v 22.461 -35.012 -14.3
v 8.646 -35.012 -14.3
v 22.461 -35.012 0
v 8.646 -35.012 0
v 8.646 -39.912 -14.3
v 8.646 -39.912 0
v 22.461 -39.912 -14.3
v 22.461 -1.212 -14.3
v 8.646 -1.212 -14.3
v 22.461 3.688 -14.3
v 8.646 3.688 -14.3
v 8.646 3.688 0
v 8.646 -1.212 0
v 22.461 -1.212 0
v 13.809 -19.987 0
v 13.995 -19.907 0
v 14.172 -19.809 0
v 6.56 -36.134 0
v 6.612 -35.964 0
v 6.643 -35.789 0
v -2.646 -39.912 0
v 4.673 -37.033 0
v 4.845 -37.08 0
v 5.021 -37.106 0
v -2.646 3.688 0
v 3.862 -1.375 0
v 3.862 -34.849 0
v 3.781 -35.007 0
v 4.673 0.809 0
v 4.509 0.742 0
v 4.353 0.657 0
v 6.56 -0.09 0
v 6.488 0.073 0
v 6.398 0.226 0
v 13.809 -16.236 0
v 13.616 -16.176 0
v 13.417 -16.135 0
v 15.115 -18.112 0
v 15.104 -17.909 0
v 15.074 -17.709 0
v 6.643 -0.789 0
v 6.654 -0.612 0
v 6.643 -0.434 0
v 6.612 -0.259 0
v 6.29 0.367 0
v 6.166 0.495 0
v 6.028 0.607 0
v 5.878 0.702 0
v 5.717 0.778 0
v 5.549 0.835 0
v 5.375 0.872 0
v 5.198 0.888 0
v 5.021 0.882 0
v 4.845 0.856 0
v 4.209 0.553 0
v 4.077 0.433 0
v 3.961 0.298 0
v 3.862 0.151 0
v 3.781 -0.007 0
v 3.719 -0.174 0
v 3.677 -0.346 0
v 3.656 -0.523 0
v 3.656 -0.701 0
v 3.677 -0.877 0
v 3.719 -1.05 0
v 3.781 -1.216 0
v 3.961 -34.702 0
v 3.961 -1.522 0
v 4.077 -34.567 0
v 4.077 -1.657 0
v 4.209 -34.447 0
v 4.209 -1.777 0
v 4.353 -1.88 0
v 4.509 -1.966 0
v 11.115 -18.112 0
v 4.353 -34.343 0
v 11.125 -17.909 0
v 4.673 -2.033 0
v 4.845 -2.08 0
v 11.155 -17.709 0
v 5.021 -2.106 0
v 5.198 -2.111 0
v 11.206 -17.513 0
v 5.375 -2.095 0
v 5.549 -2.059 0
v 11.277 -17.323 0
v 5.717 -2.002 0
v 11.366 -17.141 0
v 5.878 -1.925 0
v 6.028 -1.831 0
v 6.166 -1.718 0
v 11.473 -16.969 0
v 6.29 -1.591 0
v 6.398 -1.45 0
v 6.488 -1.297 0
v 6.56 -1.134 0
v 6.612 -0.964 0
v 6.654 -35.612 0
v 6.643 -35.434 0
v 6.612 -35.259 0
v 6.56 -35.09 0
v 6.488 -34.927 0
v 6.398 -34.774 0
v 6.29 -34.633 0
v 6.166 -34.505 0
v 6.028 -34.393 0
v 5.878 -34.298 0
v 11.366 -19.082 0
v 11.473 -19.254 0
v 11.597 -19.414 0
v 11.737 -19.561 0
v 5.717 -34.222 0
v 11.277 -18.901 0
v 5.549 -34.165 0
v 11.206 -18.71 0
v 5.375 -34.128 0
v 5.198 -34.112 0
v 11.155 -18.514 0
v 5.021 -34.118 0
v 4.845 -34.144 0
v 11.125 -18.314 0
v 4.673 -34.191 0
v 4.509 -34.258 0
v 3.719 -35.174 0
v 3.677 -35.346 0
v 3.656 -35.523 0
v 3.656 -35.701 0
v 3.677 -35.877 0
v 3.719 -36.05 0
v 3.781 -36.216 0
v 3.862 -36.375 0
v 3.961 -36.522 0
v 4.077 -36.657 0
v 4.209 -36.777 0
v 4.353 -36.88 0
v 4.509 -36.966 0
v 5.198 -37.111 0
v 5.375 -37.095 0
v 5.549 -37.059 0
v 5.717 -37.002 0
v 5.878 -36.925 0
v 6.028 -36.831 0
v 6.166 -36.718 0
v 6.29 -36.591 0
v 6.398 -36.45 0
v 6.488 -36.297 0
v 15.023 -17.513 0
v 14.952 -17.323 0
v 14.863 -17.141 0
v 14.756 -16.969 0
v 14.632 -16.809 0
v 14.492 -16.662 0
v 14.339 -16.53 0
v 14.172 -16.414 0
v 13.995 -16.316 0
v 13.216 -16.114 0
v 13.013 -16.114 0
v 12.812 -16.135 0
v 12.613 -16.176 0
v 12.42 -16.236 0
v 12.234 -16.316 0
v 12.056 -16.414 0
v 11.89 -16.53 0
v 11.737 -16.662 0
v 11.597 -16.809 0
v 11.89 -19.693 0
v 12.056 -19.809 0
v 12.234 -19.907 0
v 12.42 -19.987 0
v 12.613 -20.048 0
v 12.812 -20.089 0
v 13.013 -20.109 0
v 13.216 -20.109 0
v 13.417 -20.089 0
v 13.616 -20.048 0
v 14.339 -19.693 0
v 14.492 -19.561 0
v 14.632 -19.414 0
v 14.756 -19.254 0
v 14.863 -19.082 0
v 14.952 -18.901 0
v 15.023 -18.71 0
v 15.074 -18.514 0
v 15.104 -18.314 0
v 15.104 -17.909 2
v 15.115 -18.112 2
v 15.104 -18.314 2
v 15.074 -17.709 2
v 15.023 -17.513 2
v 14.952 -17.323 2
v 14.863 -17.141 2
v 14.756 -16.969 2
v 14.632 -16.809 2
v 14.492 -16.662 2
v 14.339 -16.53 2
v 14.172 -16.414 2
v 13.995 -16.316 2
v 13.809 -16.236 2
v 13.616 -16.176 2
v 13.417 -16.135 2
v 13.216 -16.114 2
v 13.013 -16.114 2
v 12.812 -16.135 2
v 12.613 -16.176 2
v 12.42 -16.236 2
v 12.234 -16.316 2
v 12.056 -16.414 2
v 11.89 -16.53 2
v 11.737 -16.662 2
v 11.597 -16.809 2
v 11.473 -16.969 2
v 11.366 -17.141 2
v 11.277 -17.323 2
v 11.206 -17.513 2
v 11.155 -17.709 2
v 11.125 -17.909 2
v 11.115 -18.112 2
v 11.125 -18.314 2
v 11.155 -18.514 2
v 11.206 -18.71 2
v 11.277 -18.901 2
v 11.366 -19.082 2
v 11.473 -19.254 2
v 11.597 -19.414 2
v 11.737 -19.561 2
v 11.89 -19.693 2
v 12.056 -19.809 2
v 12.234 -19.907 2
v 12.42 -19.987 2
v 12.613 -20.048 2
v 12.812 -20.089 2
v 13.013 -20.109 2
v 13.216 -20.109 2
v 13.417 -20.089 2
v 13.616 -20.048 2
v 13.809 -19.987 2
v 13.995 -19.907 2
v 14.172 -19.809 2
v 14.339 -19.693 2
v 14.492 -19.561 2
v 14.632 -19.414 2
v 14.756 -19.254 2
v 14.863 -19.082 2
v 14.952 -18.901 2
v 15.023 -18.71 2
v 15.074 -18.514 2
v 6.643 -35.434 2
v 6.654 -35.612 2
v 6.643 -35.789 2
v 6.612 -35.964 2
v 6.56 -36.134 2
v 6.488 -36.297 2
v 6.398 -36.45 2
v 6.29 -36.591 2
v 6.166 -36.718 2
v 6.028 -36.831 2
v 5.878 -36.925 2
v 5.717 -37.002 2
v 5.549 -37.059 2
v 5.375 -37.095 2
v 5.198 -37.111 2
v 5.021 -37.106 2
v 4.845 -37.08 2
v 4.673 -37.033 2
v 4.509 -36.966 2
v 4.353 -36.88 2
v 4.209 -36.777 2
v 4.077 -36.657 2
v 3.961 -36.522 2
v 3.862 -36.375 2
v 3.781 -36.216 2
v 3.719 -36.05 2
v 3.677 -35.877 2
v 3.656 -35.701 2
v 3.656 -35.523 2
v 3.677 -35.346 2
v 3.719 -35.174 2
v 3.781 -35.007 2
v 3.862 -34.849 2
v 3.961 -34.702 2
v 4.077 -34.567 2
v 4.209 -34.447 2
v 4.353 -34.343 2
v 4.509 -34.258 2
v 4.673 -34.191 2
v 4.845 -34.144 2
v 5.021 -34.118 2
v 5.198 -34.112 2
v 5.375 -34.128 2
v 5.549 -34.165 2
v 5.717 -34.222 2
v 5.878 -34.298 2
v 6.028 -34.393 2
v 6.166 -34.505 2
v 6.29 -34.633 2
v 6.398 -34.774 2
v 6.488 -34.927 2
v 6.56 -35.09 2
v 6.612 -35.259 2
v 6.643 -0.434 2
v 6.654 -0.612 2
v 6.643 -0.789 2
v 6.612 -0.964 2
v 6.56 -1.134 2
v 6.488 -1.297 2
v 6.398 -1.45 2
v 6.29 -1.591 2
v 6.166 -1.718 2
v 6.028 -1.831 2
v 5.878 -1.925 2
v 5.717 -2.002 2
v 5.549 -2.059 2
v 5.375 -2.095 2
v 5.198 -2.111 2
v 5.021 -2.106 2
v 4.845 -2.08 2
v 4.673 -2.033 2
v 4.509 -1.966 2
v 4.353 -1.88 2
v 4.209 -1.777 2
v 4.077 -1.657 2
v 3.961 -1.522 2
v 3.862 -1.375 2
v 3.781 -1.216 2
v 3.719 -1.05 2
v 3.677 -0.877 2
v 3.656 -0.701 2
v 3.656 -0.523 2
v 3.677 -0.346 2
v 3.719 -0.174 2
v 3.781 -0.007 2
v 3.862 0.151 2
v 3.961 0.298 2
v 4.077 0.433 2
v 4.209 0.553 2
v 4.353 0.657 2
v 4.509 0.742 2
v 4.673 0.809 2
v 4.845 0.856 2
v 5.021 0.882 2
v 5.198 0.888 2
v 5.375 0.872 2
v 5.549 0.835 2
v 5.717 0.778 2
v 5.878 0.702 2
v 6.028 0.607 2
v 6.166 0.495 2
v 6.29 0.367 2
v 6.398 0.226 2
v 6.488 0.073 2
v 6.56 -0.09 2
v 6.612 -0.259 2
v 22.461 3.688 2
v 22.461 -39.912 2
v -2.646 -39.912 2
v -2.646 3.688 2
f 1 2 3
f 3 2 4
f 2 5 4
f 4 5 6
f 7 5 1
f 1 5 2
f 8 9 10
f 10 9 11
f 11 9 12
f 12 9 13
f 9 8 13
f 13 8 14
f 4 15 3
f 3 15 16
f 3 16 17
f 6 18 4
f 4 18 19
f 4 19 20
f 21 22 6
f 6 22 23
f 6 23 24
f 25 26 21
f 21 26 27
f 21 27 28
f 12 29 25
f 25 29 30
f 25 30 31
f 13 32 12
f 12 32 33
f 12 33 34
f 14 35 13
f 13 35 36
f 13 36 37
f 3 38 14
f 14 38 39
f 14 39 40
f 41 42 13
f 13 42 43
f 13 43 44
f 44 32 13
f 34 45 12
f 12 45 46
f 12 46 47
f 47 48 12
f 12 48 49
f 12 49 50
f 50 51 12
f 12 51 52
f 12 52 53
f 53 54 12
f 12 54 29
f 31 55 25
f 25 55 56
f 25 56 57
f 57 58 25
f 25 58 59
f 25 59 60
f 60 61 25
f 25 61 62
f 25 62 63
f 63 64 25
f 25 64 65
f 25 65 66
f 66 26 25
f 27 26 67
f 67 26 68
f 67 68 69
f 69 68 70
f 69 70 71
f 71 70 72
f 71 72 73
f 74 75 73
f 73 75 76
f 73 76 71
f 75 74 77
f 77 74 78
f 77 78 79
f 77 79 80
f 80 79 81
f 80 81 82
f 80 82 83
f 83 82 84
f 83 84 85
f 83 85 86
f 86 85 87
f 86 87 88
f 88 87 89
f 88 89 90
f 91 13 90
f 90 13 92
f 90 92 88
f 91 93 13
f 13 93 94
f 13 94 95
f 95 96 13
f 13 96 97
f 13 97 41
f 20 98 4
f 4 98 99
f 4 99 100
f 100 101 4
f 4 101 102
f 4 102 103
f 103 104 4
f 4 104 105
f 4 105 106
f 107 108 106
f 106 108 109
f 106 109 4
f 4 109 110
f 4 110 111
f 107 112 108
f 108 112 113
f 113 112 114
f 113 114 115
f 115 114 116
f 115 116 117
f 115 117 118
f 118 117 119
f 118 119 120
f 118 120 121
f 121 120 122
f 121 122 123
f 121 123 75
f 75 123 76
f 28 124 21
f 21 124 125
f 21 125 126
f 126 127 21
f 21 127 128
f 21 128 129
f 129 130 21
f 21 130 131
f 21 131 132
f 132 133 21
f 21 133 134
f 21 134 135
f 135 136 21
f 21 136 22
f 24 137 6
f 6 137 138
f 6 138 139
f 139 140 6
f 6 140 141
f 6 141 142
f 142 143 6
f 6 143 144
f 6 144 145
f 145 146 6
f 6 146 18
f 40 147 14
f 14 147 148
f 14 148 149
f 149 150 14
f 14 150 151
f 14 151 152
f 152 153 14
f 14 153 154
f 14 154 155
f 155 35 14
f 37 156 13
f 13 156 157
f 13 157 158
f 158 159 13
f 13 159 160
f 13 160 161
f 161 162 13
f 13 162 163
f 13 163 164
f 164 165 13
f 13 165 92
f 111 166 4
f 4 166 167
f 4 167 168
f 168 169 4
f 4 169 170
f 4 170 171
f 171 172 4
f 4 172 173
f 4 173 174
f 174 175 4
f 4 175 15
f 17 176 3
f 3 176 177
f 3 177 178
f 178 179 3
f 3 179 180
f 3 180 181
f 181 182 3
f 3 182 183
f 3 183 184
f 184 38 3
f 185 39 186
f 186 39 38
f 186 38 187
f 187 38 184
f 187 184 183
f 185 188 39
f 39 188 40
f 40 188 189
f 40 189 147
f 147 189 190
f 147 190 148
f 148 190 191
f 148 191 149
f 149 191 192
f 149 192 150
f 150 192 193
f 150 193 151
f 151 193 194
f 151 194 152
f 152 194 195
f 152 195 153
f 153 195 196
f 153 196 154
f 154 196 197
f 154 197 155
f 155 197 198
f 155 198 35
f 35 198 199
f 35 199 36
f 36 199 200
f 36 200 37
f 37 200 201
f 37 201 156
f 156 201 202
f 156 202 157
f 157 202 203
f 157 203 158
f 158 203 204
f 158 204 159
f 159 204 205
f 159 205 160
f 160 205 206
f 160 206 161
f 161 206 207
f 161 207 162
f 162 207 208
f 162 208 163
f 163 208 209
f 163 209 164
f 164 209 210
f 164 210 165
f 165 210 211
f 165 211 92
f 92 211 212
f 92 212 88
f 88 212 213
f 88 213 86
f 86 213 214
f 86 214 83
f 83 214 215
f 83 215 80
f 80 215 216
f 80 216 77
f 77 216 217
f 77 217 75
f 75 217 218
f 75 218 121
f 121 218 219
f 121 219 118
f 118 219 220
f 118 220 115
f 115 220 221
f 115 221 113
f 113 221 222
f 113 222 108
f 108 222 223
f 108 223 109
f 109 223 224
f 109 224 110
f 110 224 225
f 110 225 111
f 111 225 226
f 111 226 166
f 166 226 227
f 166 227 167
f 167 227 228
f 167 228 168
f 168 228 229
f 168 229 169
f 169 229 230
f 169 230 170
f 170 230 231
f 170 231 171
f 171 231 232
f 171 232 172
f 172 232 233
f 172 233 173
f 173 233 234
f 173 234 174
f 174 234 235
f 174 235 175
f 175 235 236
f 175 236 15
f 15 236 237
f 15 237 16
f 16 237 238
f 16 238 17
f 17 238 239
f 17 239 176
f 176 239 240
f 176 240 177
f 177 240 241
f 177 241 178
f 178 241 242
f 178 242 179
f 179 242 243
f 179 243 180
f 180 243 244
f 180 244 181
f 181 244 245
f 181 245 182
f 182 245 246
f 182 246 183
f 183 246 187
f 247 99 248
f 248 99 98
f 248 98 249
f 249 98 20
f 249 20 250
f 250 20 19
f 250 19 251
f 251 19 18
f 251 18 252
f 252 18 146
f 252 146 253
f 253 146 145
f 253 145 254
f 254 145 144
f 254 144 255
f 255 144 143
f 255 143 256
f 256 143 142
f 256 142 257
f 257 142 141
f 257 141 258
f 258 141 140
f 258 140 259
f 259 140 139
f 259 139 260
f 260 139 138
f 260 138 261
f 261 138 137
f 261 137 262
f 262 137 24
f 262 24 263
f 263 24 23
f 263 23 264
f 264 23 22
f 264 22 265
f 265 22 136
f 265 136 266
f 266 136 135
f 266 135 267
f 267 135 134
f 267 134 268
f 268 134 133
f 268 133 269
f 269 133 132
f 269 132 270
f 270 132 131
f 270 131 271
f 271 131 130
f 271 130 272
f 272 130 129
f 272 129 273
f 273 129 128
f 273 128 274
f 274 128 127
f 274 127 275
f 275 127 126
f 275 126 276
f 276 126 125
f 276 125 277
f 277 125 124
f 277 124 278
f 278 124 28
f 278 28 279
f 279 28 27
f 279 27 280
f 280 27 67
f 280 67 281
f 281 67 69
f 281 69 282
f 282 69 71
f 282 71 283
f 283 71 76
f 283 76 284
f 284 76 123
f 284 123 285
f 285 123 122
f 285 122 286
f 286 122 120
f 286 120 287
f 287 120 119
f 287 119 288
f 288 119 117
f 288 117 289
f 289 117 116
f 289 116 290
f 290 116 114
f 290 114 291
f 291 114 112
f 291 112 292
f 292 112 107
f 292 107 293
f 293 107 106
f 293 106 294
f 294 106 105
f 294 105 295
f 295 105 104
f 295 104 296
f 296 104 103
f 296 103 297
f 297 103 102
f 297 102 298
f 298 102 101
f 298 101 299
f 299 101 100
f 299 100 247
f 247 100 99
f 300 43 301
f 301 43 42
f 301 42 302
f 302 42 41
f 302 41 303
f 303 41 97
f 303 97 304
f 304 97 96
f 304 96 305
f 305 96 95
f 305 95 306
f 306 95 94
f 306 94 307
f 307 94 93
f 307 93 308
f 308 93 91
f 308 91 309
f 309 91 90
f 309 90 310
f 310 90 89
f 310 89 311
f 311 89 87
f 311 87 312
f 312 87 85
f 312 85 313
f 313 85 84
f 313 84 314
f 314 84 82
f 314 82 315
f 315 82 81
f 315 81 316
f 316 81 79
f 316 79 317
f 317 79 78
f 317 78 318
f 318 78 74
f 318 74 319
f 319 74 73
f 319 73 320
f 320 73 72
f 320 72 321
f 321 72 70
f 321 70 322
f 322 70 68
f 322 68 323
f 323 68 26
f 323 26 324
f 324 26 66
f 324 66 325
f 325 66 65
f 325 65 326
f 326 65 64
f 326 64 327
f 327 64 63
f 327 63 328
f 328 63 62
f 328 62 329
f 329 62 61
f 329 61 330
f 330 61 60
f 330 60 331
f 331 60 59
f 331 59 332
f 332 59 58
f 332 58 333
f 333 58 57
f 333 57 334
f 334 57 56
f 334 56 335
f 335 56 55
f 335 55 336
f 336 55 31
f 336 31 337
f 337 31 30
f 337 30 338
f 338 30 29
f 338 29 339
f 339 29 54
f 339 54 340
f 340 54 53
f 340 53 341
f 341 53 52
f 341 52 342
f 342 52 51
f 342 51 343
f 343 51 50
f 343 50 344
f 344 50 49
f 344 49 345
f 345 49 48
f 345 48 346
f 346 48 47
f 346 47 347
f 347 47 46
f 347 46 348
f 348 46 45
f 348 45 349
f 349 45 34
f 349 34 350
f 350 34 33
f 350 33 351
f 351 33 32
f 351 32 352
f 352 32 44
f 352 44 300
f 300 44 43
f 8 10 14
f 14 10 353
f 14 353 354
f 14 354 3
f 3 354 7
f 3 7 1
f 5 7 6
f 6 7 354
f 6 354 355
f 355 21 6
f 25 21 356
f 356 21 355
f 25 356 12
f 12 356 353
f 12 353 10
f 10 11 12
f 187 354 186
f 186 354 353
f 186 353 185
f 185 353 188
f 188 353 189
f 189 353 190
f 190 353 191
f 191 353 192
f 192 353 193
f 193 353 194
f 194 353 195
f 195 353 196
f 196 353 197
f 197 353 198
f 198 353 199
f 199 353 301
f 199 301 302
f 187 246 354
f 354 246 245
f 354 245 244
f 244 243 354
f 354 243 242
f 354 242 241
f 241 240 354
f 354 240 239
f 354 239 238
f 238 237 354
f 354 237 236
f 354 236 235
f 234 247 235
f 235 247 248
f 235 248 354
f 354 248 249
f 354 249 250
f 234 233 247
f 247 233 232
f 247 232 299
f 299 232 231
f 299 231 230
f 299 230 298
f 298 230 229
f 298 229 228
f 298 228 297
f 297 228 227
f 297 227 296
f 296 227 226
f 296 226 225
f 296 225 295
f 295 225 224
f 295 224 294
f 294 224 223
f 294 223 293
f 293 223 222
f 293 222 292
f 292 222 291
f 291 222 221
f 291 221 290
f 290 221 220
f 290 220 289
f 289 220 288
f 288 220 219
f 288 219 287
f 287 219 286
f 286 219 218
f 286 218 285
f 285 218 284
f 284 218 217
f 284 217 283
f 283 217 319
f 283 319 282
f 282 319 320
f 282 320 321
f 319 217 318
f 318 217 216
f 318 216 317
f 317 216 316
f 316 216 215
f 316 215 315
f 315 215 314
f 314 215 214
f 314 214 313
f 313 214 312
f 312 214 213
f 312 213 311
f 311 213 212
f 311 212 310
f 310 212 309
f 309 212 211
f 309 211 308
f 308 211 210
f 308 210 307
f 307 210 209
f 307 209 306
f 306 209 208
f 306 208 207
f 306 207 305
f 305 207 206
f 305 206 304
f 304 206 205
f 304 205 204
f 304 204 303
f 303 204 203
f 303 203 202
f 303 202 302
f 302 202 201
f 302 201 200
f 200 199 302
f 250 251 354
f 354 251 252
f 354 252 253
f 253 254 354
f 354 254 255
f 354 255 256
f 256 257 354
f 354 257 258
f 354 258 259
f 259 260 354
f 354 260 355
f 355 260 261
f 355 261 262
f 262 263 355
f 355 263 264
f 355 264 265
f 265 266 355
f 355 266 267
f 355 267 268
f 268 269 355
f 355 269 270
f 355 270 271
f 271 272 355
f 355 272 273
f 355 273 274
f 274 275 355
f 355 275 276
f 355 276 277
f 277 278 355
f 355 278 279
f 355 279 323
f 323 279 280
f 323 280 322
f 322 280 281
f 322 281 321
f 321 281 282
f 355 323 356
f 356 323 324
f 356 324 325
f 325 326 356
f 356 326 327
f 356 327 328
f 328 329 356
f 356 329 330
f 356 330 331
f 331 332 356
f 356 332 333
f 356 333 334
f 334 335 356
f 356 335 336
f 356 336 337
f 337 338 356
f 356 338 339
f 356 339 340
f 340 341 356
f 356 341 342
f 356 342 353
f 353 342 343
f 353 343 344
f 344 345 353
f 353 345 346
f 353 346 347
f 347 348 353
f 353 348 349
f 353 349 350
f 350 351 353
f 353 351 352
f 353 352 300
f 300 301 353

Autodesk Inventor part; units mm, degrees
ref_plane "YZ Plane" through (0, 0, 0) normal (1, 0, 0) x (0, 1, 0)
sketch "Sketch1" plane through (0, 0, 0) normal (0, 0, 1) x (1, 0, 0)
  line L0 (8.6463, -3.6882) -> (-2.6463, -3.6882) construction
  line L1 (8.6463, 3.6882) -> (8.6463, -3.6882) construction
  line L2 (-2.6463, 3.6882) -> (8.6463, 3.6882) construction
  circle A0 centre (5.1537, -0.6118) radius 1.4 construction
  line L3 (-2.6463, -39.9118) -> (8.6463, -39.9118) construction
  line L4 (8.6463, -39.9118) -> (8.6463, -32.5353) construction
  line L5 (8.6463, -32.5353) -> (-2.6463, -32.5353) construction
  circle A1 centre (5.1537, -35.6118) radius 1.4 construction
  line L6 (8.6463, -35.0118) -> (8.6463, -39.9118) construction
  line L7 (8.6463, -39.9118) -> (25.0537, -39.9118) construction
  line L8 (74.7537, -39.9118) -> (74.7537, -34.8118) construction
  line L9 (74.7537, -34.8118) -> (70.7537, -34.8118) construction
  line L10 (70.7537, -34.8118) -> (70.7537, -35.0118) construction
  line L11 (23.2537, -35.0118) -> (8.6463, -35.0118) construction
  line L12 (8.6463, 3.6882) -> (8.6463, -1.2118) construction
  line L13 (8.6463, -1.2118) -> (23.2537, -1.2118) construction
  line L14 (70.7537, -1.2118) -> (70.7537, -1.4118) construction
  line L15 (70.7537, -1.4118) -> (74.7537, -1.4118) construction
  line L16 (74.7537, -1.4118) -> (74.7537, 3.6882) construction
  line L17 (25.0537, 3.6882) -> (8.6463, 3.6882) construction
  line L18 (19.9537, -11.1118) -> (9.9537, -11.1118) construction
  line L19 (9.9537, -16.4118) -> (9.9537, -11.1118) construction
  line L20 (19.9537, -16.4118) -> (9.9537, -16.4118) construction
  line L21 (19.9537, -16.4118) -> (19.9537, -11.1118) construction
  line L22 (-2.6463, 3.6882) -> (22.4609, 3.6882)
  line L23 (22.4609, 3.6882) -> (22.4609, -39.9118)
  line L24 (22.4609, -39.9118) -> (-2.6463, -39.9118)
  line L25 (-2.6463, -39.9118) -> (-2.6463, 3.6882)
  circle A2 centre (5.1537, -0.6118) radius 1.5
  circle A3 centre (5.1537, -35.6118) radius 1.5
  line L26 (14.5908, -13.5618) -> (14.5908, -11.1118) construction
  line L27 (11.6908, -13.5618) -> (11.6908, -11.1118) construction
  line L28 (14.5908, -25.1118) -> (14.5908, -22.6618) construction
  line L29 (11.6908, -25.1118) -> (11.6908, -22.6618) construction
  circle A4 centre (13.1145, -18.1118) radius 2
  line L30 (-2.6463, -32.5353) -> (-2.6463, -39.9118) projected
  line L31 (34.9537, -32.1118) -> (26.1537, -32.1118) projected
  line L32 (23.2537, -35.0118) -> (26.1537, -32.1118) projected
  line L33 (25.0537, -39.9118) -> (25.0537, -39.3319) projected
  line L34 (26.7161, -37.6695) -> (25.0537, -39.3319) projected
  arc A5 (27.8115, -36.5741) -> (26.7161, -37.6695) centre (28.2537, -38.1118) ccw projected
  line L35 (29.4557, -34.9299) -> (27.8115, -36.5741) projected
  line L36 (36.8518, -34.9299) -> (29.4557, -34.9299) projected
  line L37 (38.496, -36.5741) -> (36.8518, -34.9299) projected
  arc A6 (39.5914, -37.6695) -> (38.496, -36.5741) centre (38.0537, -38.1118) ccw projected
  line L38 (41.2537, -39.3319) -> (39.5914, -37.6695) projected
  line L39 (41.2537, -39.3319) -> (41.2537, -39.9118) projected
  line L40 (41.2537, -39.9118) -> (74.7537, -39.9118) projected
  line L41 (70.7537, -35.0118) -> (44.2537, -35.0118) projected
  line L42 (41.2537, -32.0118) -> (44.2537, -35.0118) projected
  line L43 (34.9537, -32.0118) -> (41.2537, -32.0118) projected
  line L44 (34.9537, -32.0118) -> (34.9537, -32.1118) projected
  line L45 (34.9537, -4.1118) -> (34.9537, -4.2118) projected
  line L46 (34.9537, -4.2118) -> (41.2537, -4.2118) projected
  line L47 (41.2537, -4.2118) -> (44.2537, -1.2118) projected
  line L48 (44.2537, -1.2118) -> (70.7537, -1.2118) projected
  line L49 (74.7537, 3.6882) -> (41.2537, 3.6882) projected
  line L50 (41.2537, 3.6882) -> (41.2537, 3.1083) projected
  line L51 (41.2537, 3.1083) -> (39.5914, 1.446) projected
  arc A7 (38.496, 0.3506) -> (39.5914, 1.446) centre (38.0537, 1.8882) ccw projected
  line L52 (38.496, 0.3506) -> (36.8518, -1.2936) projected
  line L53 (36.8518, -1.2936) -> (29.4557, -1.2936) projected
  line L54 (29.4557, -1.2936) -> (27.8115, 0.3506) projected
  arc A8 (26.7161, 1.446) -> (27.8115, 0.3506) centre (28.2537, 1.8882) ccw projected
  line L55 (26.7161, 1.446) -> (25.0537, 3.1083) projected
  line L56 (25.0537, 3.1083) -> (25.0537, 3.6882) projected
  line L57 (23.2537, -1.2118) -> (26.1537, -4.1118) projected
  line L58 (26.1537, -4.1118) -> (34.9537, -4.1118) projected
  line L59 (-2.6463, 3.6882) -> (-2.6463, -3.6882) projected
  point P0 (0, 0)
  dimension "d0" = 0.1
  dimension "d1" = 0.1
  dimension "d2" = 4
extrude "Extrusion1" add sketch "Sketch1" along normal blind 2
sketch "Sketch2" plane through (0, 0, 0) normal (0, 0, -1) x (-1, 0, 0)
  circle A0 centre (-13.1145, -18.1118) radius 2 construction
  circle A1 centre (-5.1537, -35.6118) radius 1.5 construction
  circle A2 centre (-5.1537, -0.6118) radius 1.5 construction
  line L0 (2.6463, 3.6882) -> (-22.4609, 3.6882) construction
  line L1 (-22.4609, 3.6882) -> (-22.4609, -39.9118) construction
  line L2 (-22.4609, -39.9118) -> (2.6463, -39.9118) construction
  line L3 (2.6463, -39.9118) -> (2.6463, 3.6882) construction
  line L4 (-8.6463, 3.6882) -> (-8.6463, -3.6882) construction
  line L5 (-8.6463, -39.9118) -> (-8.6463, -32.5353) construction
  line L6 (-8.6463, -1.2118) -> (-23.2537, -1.2118) construction
  line L7 (-8.6463, -35.0118) -> (-23.2537, -35.0118) construction
  line L8 (-22.4609, -39.9118) -> (-8.6463, -39.9118)
  line L9 (-8.6463, -39.9118) -> (-8.6463, -35.0118)
  line L10 (-8.6463, -35.0118) -> (-22.4609, -35.0118)
  line L11 (-22.4609, -35.0118) -> (-22.4609, -39.9118)
  line L12 (-22.4609, -39.9118) -> (-22.4609, 3.6882) projected
  line L13 (-22.4609, -1.2118) -> (-8.6463, -1.2118)
  line L14 (-8.6463, -1.2118) -> (-8.6463, 3.6882)
  line L15 (-8.6463, 3.6882) -> (-22.4609, 3.6882)
  line L16 (-22.4609, 3.6882) -> (-22.4609, -1.2118)
  point P0 (0, 0)
ref_plane "Work Plane1" through (8.6463, -1.4118, -16.3) normal (0, 0, 1) x (1, 0, 0)
ref_plane "Work Plane2" through (8.6463, -39.9118, -14.3) normal (0, 0, 1) x (1, 0, 0)
extrude "Extrusion2" add sketch "Sketch2" along normal up to surface (14.3 mm away)
properties part number "20_focus_inlet_plate_bottom"
